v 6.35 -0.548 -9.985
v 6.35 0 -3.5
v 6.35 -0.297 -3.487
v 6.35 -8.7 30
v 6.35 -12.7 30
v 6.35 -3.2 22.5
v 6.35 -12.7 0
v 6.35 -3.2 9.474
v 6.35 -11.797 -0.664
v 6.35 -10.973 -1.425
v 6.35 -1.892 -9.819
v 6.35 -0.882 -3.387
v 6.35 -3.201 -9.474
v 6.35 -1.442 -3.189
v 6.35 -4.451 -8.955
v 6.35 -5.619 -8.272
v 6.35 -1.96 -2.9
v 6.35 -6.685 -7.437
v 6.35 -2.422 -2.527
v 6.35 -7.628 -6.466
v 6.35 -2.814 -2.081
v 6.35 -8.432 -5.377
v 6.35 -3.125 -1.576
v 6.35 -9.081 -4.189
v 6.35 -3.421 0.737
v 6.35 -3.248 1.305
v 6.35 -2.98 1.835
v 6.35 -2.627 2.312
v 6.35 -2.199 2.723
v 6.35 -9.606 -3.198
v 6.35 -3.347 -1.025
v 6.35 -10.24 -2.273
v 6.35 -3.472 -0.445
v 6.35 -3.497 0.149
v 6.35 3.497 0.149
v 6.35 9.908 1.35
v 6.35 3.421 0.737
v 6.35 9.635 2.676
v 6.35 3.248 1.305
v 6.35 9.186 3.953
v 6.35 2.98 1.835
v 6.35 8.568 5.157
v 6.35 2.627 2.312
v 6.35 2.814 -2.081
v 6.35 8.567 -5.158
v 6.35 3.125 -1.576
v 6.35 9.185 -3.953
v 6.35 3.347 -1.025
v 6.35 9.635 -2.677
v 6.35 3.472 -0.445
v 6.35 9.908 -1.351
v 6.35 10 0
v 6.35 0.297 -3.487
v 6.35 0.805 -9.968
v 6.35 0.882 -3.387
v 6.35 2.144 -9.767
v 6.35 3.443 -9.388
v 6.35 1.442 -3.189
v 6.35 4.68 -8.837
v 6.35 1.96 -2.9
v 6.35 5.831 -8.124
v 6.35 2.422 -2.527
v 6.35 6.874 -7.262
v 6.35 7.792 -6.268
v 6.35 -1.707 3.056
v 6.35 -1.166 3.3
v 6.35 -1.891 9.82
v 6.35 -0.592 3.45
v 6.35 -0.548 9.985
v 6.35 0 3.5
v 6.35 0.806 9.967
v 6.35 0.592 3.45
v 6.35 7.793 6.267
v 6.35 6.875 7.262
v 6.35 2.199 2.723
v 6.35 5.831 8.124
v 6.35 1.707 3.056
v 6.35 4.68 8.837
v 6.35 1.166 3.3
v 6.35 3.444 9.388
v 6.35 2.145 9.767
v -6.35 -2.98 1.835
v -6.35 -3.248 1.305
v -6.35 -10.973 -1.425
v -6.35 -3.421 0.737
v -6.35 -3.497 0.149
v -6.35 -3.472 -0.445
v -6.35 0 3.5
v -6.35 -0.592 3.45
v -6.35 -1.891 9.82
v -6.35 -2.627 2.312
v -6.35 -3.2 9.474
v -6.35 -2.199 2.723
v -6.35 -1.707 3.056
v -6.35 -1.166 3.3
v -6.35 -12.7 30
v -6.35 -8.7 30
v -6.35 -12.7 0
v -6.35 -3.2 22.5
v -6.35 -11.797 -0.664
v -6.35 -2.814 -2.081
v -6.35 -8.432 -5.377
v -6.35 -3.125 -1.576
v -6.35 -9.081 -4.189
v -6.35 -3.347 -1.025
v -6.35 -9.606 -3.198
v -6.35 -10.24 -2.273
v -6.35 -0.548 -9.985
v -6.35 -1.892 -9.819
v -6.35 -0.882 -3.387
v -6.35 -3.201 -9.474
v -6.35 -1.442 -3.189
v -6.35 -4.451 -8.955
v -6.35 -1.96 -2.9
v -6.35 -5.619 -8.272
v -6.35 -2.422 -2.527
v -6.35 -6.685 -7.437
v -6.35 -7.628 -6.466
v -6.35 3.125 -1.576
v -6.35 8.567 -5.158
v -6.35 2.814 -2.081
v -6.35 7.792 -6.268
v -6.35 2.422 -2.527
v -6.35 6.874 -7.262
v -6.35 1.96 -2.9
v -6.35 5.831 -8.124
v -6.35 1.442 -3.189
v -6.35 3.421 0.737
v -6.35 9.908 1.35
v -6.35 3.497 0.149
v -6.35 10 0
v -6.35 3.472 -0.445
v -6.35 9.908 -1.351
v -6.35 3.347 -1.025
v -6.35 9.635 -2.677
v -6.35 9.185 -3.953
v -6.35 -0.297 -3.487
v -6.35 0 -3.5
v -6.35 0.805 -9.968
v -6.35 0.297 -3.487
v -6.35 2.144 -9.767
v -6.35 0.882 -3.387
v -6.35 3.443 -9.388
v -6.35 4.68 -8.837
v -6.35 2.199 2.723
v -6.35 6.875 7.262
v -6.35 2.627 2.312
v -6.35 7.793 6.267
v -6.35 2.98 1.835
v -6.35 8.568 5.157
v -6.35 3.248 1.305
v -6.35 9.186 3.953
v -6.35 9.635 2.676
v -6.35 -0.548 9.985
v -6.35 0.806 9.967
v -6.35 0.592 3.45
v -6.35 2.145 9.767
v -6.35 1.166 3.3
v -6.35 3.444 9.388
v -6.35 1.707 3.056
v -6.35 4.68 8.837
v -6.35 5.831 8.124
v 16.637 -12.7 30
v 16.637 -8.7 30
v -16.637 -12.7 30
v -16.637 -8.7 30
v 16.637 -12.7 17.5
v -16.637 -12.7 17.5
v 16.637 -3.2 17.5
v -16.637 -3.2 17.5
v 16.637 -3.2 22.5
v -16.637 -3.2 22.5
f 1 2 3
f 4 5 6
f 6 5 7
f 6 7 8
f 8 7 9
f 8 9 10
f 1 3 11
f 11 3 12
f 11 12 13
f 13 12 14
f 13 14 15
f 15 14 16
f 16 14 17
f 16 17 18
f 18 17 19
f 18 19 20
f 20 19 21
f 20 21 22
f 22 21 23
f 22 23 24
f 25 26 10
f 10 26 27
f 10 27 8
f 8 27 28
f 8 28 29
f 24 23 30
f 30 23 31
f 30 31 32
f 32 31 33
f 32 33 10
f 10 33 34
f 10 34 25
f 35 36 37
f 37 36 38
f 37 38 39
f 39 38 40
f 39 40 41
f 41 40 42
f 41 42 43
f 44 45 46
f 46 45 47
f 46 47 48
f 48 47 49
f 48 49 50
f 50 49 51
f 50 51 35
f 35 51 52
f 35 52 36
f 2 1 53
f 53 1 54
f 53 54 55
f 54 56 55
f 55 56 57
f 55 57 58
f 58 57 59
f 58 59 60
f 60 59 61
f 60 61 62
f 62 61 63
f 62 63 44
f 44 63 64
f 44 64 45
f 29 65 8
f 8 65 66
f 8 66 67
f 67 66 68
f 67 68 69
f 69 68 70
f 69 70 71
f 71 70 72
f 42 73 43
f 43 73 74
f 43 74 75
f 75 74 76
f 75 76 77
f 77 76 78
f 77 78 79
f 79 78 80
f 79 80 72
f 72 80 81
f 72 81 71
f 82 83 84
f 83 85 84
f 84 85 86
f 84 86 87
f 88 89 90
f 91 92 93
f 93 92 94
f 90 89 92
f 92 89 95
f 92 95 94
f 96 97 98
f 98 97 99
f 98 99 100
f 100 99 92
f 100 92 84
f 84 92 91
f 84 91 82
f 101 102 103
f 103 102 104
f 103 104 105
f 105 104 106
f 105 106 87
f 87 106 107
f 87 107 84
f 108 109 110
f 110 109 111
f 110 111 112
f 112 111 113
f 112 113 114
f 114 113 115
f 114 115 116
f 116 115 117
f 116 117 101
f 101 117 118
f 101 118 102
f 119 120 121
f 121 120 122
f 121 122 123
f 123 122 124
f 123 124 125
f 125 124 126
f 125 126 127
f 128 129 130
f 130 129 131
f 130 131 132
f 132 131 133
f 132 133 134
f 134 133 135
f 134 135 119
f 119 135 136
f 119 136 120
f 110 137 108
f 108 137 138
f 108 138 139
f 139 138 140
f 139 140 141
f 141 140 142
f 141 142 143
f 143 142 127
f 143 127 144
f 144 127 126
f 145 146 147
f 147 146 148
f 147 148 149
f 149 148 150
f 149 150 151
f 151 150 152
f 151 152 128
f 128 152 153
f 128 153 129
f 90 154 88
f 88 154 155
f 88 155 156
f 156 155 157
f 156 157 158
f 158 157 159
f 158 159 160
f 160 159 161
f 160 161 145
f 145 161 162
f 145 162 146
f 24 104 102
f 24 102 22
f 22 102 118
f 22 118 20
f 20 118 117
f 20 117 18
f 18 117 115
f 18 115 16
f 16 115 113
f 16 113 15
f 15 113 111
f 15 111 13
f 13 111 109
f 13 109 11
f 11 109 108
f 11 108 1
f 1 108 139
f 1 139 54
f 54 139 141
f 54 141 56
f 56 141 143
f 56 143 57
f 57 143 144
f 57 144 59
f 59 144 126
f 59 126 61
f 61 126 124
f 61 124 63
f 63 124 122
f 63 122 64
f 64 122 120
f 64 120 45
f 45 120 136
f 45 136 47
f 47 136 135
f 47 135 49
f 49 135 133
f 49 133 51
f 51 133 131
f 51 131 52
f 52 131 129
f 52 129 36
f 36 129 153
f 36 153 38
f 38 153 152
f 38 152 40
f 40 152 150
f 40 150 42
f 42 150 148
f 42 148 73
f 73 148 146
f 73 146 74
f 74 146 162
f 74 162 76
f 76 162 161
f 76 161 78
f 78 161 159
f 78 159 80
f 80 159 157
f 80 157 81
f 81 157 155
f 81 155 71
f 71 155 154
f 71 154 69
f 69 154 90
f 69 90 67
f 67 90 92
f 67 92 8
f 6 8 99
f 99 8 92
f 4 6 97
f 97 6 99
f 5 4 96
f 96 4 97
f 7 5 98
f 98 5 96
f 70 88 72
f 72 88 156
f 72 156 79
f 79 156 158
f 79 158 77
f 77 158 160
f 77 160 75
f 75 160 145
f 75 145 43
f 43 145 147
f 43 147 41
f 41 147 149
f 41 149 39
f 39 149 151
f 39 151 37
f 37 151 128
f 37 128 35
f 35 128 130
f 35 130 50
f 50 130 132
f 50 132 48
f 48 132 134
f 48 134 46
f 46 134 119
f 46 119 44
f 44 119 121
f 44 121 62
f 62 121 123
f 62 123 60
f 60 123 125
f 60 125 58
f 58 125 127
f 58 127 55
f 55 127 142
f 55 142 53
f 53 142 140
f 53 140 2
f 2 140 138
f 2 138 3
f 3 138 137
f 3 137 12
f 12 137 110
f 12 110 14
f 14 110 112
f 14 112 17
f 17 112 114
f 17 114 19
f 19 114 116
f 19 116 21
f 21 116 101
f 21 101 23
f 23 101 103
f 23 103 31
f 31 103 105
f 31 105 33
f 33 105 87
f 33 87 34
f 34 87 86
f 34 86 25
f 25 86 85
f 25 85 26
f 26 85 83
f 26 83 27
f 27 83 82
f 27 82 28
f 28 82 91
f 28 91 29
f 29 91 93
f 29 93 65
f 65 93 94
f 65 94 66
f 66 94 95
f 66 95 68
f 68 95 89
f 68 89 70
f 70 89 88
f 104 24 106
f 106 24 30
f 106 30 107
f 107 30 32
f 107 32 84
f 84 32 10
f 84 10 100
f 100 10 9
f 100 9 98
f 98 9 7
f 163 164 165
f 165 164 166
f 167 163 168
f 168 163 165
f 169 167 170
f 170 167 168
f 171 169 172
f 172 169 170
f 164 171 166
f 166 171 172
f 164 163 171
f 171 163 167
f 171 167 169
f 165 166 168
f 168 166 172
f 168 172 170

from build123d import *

# Parameters (mm, degrees)
SKETCH1_R           = 3.5
BOSS_EXTRUDE1_DEPTH = 6.35
BOSS_EXTRUDE2_DEPTH = 16.637
FILLET1_R           = 10


with BuildPart() as part:
    # Sketch1 → Boss-Extrude1 (new, symmetric)
    with BuildSketch(Plane(origin=(0, 0, 0), x_dir=(0, 0, -1), z_dir=(1, 0, 0))):
        with BuildLine():
            Line((0, -12.7), (-30, -12.7))
            Line((-30, -12.7), (-30, -8.7))
            Line((-30, -8.7), (-22.5, -3.2))
            Line((-22.5, -3.2), (-9.474175426, -3.2))
            ThreePointArc((-9.474175426, -3.2), (5.830951895, 8.124038405), (0, -10))
            Line((0, -10), (0, -12.7))
        make_face()
        Circle(SKETCH1_R, mode=Mode.SUBTRACT)
    extrude(amount=BOSS_EXTRUDE1_DEPTH, both=True)

    # Fillet1
    # the kernel refuses this fillet: 10 mm, written as the material it adds along each edge
    with BuildSketch(Plane(origin=(-6.35, -10, 0), x_dir=(0, -1, 0), z_dir=(1, 0, 0))) as fillet1_piece_1:
        with BuildLine():
            CenterArc((8.161023622, 8.377184551), FILLET1_R, 204.762586687, 32.137385873)
            Line((-0.919488189, 4.188592275), (-1.101098425, 4.10482043))
            ThreePointArc((-1.101098425, 4.10482043), (-0.427925109, 2.101281105), (-0.2, 0))
            Line((-0.2, 0), (0, -0.2))
            ThreePointArc((0, -0.2), (1.35, -0.2), (2.590779528, -0.167543691))
            Line((2.590779528, -0.167543691), (2.7, 0))
        make_face()
    extrude(amount=12.7)


with BuildPart() as body_2:
    # Sketch4 → Boss-Extrude2 (new, symmetric)
    with BuildSketch(Plane(origin=(0, 0, 0), x_dir=(0, 0, -1), z_dir=(1, 0, 0))):
        Polygon((-17.5, -3.2), (-17.5, -12.7), (-30, -12.7), (-30, -8.7), (-22.5, -3.2), align=None)
    extrude(amount=BOSS_EXTRUDE2_DEPTH, both=True)


solid = Compound([part.part, body_2.part])
